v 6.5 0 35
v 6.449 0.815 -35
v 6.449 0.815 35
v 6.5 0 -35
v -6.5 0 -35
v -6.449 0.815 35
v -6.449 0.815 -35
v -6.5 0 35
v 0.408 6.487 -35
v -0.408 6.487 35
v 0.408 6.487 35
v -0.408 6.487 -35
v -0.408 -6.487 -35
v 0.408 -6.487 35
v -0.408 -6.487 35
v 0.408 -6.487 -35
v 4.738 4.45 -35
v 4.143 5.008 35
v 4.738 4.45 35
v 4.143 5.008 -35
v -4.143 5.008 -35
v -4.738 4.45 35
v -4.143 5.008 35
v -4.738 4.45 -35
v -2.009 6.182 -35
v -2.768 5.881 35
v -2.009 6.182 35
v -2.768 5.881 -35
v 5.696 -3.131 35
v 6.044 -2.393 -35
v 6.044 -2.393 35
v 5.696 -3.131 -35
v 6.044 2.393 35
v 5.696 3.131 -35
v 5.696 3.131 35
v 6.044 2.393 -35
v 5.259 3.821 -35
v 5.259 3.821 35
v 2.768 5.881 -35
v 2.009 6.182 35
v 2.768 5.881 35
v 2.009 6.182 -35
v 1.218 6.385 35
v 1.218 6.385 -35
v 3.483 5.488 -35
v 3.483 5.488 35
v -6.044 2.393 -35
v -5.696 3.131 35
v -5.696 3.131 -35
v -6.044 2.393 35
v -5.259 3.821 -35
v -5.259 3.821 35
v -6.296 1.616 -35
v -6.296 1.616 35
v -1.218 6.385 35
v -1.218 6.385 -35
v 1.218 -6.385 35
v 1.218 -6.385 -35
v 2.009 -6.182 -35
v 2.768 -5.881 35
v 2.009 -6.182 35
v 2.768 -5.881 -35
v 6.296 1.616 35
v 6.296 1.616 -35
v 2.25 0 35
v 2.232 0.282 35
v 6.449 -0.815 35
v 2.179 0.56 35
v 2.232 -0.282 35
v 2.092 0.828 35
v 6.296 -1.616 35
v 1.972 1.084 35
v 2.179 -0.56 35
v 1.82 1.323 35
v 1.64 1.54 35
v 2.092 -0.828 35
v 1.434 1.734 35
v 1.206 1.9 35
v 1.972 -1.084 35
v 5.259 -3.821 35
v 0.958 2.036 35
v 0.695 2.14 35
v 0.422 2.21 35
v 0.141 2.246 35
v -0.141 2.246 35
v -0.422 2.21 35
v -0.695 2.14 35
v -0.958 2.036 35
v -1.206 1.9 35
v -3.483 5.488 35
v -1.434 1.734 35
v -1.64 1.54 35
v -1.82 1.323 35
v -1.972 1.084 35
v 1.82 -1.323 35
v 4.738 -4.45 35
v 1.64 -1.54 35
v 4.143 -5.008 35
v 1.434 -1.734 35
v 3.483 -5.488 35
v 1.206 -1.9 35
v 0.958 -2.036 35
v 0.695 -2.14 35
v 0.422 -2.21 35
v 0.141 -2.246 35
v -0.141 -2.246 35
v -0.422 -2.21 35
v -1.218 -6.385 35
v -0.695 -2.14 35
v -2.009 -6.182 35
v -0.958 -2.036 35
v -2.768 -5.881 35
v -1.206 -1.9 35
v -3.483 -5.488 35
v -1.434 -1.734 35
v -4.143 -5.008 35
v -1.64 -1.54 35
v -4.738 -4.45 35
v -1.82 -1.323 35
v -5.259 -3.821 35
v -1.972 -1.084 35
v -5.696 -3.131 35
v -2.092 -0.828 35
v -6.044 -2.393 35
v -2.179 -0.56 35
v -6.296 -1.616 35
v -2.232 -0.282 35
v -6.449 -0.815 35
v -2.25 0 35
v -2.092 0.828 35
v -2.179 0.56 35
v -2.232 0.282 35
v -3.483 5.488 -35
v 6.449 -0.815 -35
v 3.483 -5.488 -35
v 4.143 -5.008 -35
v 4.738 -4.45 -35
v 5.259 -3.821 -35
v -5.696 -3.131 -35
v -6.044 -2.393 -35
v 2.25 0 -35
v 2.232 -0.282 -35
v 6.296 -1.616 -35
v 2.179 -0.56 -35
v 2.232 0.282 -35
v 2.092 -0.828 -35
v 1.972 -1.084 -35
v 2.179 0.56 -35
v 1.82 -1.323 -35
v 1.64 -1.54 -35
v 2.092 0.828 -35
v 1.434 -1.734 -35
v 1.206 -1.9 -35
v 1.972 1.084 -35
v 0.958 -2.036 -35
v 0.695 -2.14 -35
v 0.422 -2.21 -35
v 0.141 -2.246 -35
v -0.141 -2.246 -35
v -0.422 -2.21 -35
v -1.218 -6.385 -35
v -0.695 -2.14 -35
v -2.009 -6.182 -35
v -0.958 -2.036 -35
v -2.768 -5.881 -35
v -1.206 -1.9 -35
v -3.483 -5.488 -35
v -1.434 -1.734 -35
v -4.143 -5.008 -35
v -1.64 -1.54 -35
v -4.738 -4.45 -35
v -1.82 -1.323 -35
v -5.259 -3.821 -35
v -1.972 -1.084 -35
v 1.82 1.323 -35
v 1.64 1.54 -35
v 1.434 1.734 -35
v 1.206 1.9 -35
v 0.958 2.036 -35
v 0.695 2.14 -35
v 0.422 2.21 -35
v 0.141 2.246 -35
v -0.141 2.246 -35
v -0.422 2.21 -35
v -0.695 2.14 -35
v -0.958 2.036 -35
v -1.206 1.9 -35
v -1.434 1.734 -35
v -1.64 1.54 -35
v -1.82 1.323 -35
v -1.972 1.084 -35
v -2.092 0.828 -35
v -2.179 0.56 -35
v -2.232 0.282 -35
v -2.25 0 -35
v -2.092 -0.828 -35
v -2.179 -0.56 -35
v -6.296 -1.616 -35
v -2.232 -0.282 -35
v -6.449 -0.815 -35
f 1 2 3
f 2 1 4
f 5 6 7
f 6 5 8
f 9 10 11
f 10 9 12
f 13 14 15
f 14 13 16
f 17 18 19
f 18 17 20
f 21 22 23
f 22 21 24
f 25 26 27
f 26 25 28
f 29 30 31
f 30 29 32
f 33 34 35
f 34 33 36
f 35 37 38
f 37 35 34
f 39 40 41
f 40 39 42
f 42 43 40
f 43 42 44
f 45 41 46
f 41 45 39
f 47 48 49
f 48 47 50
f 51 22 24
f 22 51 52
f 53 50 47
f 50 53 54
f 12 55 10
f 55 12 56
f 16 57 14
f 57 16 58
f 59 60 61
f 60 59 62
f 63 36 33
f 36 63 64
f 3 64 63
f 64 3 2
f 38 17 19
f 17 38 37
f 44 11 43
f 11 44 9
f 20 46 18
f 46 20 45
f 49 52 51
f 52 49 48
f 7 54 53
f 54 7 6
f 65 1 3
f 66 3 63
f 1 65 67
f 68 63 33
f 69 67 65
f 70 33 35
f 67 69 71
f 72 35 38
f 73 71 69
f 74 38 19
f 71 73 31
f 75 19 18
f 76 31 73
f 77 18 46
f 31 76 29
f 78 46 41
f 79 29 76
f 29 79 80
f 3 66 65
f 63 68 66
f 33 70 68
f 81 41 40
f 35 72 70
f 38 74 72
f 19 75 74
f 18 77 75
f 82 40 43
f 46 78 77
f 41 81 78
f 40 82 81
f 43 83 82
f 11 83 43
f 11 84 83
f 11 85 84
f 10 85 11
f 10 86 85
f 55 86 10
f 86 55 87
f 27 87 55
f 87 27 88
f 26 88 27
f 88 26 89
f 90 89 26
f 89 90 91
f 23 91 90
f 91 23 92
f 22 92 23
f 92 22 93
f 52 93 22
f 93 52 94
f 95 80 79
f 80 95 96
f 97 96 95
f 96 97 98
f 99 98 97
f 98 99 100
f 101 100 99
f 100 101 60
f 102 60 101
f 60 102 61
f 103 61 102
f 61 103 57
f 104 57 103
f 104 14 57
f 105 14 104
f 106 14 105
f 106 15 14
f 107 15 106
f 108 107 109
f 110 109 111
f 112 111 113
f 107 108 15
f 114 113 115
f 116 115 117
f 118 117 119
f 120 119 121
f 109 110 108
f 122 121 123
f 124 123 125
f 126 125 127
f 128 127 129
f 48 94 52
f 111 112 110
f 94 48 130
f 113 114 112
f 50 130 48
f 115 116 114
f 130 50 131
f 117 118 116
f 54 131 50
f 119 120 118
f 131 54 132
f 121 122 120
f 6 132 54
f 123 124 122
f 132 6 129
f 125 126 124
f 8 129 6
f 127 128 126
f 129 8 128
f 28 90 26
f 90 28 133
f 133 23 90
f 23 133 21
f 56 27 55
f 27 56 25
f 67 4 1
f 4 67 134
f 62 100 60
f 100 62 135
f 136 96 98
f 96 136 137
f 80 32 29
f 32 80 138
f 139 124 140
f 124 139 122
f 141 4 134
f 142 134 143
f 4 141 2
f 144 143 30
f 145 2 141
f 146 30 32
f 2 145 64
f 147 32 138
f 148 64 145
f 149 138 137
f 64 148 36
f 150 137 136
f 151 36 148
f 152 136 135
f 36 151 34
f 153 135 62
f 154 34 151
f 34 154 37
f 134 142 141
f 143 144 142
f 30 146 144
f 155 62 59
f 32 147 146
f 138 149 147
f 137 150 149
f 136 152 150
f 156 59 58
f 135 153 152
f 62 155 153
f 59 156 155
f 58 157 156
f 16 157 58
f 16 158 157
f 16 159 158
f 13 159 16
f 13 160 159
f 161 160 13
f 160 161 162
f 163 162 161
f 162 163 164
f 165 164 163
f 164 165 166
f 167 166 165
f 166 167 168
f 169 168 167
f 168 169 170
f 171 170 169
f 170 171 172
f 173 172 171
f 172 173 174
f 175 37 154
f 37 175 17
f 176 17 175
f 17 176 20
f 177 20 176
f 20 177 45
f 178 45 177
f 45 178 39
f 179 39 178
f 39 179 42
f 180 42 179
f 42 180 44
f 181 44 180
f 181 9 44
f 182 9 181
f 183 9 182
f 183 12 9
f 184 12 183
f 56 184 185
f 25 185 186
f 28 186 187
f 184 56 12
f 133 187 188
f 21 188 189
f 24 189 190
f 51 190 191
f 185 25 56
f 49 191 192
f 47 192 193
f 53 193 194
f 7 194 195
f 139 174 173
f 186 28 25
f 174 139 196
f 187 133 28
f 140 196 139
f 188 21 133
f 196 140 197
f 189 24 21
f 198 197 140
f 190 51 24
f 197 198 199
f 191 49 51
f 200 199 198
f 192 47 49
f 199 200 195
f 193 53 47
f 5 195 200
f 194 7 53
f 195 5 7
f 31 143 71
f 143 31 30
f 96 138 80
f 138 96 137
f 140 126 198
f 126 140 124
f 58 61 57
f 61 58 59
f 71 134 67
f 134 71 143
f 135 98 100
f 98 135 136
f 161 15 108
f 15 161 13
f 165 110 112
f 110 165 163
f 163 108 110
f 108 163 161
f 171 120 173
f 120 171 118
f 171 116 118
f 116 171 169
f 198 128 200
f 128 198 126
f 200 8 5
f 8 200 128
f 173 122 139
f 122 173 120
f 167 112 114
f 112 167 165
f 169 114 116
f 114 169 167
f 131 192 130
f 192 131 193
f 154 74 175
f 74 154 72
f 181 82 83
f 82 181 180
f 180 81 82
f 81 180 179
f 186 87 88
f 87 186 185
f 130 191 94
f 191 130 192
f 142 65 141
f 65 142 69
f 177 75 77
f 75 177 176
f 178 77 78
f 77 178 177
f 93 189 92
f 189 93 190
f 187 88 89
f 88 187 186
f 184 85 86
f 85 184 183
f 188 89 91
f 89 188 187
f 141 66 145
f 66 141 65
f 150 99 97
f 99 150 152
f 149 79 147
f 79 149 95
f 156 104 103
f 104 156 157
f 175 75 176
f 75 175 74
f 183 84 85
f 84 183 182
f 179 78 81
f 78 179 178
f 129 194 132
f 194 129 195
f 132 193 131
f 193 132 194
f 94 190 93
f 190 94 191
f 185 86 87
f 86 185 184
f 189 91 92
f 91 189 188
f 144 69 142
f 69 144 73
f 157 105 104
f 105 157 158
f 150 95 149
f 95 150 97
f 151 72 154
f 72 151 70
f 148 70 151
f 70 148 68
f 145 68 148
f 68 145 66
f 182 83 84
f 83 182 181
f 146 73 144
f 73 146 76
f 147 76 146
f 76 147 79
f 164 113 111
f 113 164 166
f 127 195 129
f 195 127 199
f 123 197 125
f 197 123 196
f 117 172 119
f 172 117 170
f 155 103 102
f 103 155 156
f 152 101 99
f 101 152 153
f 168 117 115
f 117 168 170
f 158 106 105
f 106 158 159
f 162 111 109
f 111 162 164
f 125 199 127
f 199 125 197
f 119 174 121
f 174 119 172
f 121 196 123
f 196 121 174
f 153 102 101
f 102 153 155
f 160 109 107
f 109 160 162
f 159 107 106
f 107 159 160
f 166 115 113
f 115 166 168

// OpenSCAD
$fn = 50;


difference() {
	union() {
		translate(v = [0, 0, -35.0000000000]) {
			cylinder(h = 70, r = 6.5000000000);
		}
	}
	union() {
		translate(v = [0, 0, -100.0000000000]) {
			cylinder(h = 200, r = 2.2500000000);
		}
	}
}
